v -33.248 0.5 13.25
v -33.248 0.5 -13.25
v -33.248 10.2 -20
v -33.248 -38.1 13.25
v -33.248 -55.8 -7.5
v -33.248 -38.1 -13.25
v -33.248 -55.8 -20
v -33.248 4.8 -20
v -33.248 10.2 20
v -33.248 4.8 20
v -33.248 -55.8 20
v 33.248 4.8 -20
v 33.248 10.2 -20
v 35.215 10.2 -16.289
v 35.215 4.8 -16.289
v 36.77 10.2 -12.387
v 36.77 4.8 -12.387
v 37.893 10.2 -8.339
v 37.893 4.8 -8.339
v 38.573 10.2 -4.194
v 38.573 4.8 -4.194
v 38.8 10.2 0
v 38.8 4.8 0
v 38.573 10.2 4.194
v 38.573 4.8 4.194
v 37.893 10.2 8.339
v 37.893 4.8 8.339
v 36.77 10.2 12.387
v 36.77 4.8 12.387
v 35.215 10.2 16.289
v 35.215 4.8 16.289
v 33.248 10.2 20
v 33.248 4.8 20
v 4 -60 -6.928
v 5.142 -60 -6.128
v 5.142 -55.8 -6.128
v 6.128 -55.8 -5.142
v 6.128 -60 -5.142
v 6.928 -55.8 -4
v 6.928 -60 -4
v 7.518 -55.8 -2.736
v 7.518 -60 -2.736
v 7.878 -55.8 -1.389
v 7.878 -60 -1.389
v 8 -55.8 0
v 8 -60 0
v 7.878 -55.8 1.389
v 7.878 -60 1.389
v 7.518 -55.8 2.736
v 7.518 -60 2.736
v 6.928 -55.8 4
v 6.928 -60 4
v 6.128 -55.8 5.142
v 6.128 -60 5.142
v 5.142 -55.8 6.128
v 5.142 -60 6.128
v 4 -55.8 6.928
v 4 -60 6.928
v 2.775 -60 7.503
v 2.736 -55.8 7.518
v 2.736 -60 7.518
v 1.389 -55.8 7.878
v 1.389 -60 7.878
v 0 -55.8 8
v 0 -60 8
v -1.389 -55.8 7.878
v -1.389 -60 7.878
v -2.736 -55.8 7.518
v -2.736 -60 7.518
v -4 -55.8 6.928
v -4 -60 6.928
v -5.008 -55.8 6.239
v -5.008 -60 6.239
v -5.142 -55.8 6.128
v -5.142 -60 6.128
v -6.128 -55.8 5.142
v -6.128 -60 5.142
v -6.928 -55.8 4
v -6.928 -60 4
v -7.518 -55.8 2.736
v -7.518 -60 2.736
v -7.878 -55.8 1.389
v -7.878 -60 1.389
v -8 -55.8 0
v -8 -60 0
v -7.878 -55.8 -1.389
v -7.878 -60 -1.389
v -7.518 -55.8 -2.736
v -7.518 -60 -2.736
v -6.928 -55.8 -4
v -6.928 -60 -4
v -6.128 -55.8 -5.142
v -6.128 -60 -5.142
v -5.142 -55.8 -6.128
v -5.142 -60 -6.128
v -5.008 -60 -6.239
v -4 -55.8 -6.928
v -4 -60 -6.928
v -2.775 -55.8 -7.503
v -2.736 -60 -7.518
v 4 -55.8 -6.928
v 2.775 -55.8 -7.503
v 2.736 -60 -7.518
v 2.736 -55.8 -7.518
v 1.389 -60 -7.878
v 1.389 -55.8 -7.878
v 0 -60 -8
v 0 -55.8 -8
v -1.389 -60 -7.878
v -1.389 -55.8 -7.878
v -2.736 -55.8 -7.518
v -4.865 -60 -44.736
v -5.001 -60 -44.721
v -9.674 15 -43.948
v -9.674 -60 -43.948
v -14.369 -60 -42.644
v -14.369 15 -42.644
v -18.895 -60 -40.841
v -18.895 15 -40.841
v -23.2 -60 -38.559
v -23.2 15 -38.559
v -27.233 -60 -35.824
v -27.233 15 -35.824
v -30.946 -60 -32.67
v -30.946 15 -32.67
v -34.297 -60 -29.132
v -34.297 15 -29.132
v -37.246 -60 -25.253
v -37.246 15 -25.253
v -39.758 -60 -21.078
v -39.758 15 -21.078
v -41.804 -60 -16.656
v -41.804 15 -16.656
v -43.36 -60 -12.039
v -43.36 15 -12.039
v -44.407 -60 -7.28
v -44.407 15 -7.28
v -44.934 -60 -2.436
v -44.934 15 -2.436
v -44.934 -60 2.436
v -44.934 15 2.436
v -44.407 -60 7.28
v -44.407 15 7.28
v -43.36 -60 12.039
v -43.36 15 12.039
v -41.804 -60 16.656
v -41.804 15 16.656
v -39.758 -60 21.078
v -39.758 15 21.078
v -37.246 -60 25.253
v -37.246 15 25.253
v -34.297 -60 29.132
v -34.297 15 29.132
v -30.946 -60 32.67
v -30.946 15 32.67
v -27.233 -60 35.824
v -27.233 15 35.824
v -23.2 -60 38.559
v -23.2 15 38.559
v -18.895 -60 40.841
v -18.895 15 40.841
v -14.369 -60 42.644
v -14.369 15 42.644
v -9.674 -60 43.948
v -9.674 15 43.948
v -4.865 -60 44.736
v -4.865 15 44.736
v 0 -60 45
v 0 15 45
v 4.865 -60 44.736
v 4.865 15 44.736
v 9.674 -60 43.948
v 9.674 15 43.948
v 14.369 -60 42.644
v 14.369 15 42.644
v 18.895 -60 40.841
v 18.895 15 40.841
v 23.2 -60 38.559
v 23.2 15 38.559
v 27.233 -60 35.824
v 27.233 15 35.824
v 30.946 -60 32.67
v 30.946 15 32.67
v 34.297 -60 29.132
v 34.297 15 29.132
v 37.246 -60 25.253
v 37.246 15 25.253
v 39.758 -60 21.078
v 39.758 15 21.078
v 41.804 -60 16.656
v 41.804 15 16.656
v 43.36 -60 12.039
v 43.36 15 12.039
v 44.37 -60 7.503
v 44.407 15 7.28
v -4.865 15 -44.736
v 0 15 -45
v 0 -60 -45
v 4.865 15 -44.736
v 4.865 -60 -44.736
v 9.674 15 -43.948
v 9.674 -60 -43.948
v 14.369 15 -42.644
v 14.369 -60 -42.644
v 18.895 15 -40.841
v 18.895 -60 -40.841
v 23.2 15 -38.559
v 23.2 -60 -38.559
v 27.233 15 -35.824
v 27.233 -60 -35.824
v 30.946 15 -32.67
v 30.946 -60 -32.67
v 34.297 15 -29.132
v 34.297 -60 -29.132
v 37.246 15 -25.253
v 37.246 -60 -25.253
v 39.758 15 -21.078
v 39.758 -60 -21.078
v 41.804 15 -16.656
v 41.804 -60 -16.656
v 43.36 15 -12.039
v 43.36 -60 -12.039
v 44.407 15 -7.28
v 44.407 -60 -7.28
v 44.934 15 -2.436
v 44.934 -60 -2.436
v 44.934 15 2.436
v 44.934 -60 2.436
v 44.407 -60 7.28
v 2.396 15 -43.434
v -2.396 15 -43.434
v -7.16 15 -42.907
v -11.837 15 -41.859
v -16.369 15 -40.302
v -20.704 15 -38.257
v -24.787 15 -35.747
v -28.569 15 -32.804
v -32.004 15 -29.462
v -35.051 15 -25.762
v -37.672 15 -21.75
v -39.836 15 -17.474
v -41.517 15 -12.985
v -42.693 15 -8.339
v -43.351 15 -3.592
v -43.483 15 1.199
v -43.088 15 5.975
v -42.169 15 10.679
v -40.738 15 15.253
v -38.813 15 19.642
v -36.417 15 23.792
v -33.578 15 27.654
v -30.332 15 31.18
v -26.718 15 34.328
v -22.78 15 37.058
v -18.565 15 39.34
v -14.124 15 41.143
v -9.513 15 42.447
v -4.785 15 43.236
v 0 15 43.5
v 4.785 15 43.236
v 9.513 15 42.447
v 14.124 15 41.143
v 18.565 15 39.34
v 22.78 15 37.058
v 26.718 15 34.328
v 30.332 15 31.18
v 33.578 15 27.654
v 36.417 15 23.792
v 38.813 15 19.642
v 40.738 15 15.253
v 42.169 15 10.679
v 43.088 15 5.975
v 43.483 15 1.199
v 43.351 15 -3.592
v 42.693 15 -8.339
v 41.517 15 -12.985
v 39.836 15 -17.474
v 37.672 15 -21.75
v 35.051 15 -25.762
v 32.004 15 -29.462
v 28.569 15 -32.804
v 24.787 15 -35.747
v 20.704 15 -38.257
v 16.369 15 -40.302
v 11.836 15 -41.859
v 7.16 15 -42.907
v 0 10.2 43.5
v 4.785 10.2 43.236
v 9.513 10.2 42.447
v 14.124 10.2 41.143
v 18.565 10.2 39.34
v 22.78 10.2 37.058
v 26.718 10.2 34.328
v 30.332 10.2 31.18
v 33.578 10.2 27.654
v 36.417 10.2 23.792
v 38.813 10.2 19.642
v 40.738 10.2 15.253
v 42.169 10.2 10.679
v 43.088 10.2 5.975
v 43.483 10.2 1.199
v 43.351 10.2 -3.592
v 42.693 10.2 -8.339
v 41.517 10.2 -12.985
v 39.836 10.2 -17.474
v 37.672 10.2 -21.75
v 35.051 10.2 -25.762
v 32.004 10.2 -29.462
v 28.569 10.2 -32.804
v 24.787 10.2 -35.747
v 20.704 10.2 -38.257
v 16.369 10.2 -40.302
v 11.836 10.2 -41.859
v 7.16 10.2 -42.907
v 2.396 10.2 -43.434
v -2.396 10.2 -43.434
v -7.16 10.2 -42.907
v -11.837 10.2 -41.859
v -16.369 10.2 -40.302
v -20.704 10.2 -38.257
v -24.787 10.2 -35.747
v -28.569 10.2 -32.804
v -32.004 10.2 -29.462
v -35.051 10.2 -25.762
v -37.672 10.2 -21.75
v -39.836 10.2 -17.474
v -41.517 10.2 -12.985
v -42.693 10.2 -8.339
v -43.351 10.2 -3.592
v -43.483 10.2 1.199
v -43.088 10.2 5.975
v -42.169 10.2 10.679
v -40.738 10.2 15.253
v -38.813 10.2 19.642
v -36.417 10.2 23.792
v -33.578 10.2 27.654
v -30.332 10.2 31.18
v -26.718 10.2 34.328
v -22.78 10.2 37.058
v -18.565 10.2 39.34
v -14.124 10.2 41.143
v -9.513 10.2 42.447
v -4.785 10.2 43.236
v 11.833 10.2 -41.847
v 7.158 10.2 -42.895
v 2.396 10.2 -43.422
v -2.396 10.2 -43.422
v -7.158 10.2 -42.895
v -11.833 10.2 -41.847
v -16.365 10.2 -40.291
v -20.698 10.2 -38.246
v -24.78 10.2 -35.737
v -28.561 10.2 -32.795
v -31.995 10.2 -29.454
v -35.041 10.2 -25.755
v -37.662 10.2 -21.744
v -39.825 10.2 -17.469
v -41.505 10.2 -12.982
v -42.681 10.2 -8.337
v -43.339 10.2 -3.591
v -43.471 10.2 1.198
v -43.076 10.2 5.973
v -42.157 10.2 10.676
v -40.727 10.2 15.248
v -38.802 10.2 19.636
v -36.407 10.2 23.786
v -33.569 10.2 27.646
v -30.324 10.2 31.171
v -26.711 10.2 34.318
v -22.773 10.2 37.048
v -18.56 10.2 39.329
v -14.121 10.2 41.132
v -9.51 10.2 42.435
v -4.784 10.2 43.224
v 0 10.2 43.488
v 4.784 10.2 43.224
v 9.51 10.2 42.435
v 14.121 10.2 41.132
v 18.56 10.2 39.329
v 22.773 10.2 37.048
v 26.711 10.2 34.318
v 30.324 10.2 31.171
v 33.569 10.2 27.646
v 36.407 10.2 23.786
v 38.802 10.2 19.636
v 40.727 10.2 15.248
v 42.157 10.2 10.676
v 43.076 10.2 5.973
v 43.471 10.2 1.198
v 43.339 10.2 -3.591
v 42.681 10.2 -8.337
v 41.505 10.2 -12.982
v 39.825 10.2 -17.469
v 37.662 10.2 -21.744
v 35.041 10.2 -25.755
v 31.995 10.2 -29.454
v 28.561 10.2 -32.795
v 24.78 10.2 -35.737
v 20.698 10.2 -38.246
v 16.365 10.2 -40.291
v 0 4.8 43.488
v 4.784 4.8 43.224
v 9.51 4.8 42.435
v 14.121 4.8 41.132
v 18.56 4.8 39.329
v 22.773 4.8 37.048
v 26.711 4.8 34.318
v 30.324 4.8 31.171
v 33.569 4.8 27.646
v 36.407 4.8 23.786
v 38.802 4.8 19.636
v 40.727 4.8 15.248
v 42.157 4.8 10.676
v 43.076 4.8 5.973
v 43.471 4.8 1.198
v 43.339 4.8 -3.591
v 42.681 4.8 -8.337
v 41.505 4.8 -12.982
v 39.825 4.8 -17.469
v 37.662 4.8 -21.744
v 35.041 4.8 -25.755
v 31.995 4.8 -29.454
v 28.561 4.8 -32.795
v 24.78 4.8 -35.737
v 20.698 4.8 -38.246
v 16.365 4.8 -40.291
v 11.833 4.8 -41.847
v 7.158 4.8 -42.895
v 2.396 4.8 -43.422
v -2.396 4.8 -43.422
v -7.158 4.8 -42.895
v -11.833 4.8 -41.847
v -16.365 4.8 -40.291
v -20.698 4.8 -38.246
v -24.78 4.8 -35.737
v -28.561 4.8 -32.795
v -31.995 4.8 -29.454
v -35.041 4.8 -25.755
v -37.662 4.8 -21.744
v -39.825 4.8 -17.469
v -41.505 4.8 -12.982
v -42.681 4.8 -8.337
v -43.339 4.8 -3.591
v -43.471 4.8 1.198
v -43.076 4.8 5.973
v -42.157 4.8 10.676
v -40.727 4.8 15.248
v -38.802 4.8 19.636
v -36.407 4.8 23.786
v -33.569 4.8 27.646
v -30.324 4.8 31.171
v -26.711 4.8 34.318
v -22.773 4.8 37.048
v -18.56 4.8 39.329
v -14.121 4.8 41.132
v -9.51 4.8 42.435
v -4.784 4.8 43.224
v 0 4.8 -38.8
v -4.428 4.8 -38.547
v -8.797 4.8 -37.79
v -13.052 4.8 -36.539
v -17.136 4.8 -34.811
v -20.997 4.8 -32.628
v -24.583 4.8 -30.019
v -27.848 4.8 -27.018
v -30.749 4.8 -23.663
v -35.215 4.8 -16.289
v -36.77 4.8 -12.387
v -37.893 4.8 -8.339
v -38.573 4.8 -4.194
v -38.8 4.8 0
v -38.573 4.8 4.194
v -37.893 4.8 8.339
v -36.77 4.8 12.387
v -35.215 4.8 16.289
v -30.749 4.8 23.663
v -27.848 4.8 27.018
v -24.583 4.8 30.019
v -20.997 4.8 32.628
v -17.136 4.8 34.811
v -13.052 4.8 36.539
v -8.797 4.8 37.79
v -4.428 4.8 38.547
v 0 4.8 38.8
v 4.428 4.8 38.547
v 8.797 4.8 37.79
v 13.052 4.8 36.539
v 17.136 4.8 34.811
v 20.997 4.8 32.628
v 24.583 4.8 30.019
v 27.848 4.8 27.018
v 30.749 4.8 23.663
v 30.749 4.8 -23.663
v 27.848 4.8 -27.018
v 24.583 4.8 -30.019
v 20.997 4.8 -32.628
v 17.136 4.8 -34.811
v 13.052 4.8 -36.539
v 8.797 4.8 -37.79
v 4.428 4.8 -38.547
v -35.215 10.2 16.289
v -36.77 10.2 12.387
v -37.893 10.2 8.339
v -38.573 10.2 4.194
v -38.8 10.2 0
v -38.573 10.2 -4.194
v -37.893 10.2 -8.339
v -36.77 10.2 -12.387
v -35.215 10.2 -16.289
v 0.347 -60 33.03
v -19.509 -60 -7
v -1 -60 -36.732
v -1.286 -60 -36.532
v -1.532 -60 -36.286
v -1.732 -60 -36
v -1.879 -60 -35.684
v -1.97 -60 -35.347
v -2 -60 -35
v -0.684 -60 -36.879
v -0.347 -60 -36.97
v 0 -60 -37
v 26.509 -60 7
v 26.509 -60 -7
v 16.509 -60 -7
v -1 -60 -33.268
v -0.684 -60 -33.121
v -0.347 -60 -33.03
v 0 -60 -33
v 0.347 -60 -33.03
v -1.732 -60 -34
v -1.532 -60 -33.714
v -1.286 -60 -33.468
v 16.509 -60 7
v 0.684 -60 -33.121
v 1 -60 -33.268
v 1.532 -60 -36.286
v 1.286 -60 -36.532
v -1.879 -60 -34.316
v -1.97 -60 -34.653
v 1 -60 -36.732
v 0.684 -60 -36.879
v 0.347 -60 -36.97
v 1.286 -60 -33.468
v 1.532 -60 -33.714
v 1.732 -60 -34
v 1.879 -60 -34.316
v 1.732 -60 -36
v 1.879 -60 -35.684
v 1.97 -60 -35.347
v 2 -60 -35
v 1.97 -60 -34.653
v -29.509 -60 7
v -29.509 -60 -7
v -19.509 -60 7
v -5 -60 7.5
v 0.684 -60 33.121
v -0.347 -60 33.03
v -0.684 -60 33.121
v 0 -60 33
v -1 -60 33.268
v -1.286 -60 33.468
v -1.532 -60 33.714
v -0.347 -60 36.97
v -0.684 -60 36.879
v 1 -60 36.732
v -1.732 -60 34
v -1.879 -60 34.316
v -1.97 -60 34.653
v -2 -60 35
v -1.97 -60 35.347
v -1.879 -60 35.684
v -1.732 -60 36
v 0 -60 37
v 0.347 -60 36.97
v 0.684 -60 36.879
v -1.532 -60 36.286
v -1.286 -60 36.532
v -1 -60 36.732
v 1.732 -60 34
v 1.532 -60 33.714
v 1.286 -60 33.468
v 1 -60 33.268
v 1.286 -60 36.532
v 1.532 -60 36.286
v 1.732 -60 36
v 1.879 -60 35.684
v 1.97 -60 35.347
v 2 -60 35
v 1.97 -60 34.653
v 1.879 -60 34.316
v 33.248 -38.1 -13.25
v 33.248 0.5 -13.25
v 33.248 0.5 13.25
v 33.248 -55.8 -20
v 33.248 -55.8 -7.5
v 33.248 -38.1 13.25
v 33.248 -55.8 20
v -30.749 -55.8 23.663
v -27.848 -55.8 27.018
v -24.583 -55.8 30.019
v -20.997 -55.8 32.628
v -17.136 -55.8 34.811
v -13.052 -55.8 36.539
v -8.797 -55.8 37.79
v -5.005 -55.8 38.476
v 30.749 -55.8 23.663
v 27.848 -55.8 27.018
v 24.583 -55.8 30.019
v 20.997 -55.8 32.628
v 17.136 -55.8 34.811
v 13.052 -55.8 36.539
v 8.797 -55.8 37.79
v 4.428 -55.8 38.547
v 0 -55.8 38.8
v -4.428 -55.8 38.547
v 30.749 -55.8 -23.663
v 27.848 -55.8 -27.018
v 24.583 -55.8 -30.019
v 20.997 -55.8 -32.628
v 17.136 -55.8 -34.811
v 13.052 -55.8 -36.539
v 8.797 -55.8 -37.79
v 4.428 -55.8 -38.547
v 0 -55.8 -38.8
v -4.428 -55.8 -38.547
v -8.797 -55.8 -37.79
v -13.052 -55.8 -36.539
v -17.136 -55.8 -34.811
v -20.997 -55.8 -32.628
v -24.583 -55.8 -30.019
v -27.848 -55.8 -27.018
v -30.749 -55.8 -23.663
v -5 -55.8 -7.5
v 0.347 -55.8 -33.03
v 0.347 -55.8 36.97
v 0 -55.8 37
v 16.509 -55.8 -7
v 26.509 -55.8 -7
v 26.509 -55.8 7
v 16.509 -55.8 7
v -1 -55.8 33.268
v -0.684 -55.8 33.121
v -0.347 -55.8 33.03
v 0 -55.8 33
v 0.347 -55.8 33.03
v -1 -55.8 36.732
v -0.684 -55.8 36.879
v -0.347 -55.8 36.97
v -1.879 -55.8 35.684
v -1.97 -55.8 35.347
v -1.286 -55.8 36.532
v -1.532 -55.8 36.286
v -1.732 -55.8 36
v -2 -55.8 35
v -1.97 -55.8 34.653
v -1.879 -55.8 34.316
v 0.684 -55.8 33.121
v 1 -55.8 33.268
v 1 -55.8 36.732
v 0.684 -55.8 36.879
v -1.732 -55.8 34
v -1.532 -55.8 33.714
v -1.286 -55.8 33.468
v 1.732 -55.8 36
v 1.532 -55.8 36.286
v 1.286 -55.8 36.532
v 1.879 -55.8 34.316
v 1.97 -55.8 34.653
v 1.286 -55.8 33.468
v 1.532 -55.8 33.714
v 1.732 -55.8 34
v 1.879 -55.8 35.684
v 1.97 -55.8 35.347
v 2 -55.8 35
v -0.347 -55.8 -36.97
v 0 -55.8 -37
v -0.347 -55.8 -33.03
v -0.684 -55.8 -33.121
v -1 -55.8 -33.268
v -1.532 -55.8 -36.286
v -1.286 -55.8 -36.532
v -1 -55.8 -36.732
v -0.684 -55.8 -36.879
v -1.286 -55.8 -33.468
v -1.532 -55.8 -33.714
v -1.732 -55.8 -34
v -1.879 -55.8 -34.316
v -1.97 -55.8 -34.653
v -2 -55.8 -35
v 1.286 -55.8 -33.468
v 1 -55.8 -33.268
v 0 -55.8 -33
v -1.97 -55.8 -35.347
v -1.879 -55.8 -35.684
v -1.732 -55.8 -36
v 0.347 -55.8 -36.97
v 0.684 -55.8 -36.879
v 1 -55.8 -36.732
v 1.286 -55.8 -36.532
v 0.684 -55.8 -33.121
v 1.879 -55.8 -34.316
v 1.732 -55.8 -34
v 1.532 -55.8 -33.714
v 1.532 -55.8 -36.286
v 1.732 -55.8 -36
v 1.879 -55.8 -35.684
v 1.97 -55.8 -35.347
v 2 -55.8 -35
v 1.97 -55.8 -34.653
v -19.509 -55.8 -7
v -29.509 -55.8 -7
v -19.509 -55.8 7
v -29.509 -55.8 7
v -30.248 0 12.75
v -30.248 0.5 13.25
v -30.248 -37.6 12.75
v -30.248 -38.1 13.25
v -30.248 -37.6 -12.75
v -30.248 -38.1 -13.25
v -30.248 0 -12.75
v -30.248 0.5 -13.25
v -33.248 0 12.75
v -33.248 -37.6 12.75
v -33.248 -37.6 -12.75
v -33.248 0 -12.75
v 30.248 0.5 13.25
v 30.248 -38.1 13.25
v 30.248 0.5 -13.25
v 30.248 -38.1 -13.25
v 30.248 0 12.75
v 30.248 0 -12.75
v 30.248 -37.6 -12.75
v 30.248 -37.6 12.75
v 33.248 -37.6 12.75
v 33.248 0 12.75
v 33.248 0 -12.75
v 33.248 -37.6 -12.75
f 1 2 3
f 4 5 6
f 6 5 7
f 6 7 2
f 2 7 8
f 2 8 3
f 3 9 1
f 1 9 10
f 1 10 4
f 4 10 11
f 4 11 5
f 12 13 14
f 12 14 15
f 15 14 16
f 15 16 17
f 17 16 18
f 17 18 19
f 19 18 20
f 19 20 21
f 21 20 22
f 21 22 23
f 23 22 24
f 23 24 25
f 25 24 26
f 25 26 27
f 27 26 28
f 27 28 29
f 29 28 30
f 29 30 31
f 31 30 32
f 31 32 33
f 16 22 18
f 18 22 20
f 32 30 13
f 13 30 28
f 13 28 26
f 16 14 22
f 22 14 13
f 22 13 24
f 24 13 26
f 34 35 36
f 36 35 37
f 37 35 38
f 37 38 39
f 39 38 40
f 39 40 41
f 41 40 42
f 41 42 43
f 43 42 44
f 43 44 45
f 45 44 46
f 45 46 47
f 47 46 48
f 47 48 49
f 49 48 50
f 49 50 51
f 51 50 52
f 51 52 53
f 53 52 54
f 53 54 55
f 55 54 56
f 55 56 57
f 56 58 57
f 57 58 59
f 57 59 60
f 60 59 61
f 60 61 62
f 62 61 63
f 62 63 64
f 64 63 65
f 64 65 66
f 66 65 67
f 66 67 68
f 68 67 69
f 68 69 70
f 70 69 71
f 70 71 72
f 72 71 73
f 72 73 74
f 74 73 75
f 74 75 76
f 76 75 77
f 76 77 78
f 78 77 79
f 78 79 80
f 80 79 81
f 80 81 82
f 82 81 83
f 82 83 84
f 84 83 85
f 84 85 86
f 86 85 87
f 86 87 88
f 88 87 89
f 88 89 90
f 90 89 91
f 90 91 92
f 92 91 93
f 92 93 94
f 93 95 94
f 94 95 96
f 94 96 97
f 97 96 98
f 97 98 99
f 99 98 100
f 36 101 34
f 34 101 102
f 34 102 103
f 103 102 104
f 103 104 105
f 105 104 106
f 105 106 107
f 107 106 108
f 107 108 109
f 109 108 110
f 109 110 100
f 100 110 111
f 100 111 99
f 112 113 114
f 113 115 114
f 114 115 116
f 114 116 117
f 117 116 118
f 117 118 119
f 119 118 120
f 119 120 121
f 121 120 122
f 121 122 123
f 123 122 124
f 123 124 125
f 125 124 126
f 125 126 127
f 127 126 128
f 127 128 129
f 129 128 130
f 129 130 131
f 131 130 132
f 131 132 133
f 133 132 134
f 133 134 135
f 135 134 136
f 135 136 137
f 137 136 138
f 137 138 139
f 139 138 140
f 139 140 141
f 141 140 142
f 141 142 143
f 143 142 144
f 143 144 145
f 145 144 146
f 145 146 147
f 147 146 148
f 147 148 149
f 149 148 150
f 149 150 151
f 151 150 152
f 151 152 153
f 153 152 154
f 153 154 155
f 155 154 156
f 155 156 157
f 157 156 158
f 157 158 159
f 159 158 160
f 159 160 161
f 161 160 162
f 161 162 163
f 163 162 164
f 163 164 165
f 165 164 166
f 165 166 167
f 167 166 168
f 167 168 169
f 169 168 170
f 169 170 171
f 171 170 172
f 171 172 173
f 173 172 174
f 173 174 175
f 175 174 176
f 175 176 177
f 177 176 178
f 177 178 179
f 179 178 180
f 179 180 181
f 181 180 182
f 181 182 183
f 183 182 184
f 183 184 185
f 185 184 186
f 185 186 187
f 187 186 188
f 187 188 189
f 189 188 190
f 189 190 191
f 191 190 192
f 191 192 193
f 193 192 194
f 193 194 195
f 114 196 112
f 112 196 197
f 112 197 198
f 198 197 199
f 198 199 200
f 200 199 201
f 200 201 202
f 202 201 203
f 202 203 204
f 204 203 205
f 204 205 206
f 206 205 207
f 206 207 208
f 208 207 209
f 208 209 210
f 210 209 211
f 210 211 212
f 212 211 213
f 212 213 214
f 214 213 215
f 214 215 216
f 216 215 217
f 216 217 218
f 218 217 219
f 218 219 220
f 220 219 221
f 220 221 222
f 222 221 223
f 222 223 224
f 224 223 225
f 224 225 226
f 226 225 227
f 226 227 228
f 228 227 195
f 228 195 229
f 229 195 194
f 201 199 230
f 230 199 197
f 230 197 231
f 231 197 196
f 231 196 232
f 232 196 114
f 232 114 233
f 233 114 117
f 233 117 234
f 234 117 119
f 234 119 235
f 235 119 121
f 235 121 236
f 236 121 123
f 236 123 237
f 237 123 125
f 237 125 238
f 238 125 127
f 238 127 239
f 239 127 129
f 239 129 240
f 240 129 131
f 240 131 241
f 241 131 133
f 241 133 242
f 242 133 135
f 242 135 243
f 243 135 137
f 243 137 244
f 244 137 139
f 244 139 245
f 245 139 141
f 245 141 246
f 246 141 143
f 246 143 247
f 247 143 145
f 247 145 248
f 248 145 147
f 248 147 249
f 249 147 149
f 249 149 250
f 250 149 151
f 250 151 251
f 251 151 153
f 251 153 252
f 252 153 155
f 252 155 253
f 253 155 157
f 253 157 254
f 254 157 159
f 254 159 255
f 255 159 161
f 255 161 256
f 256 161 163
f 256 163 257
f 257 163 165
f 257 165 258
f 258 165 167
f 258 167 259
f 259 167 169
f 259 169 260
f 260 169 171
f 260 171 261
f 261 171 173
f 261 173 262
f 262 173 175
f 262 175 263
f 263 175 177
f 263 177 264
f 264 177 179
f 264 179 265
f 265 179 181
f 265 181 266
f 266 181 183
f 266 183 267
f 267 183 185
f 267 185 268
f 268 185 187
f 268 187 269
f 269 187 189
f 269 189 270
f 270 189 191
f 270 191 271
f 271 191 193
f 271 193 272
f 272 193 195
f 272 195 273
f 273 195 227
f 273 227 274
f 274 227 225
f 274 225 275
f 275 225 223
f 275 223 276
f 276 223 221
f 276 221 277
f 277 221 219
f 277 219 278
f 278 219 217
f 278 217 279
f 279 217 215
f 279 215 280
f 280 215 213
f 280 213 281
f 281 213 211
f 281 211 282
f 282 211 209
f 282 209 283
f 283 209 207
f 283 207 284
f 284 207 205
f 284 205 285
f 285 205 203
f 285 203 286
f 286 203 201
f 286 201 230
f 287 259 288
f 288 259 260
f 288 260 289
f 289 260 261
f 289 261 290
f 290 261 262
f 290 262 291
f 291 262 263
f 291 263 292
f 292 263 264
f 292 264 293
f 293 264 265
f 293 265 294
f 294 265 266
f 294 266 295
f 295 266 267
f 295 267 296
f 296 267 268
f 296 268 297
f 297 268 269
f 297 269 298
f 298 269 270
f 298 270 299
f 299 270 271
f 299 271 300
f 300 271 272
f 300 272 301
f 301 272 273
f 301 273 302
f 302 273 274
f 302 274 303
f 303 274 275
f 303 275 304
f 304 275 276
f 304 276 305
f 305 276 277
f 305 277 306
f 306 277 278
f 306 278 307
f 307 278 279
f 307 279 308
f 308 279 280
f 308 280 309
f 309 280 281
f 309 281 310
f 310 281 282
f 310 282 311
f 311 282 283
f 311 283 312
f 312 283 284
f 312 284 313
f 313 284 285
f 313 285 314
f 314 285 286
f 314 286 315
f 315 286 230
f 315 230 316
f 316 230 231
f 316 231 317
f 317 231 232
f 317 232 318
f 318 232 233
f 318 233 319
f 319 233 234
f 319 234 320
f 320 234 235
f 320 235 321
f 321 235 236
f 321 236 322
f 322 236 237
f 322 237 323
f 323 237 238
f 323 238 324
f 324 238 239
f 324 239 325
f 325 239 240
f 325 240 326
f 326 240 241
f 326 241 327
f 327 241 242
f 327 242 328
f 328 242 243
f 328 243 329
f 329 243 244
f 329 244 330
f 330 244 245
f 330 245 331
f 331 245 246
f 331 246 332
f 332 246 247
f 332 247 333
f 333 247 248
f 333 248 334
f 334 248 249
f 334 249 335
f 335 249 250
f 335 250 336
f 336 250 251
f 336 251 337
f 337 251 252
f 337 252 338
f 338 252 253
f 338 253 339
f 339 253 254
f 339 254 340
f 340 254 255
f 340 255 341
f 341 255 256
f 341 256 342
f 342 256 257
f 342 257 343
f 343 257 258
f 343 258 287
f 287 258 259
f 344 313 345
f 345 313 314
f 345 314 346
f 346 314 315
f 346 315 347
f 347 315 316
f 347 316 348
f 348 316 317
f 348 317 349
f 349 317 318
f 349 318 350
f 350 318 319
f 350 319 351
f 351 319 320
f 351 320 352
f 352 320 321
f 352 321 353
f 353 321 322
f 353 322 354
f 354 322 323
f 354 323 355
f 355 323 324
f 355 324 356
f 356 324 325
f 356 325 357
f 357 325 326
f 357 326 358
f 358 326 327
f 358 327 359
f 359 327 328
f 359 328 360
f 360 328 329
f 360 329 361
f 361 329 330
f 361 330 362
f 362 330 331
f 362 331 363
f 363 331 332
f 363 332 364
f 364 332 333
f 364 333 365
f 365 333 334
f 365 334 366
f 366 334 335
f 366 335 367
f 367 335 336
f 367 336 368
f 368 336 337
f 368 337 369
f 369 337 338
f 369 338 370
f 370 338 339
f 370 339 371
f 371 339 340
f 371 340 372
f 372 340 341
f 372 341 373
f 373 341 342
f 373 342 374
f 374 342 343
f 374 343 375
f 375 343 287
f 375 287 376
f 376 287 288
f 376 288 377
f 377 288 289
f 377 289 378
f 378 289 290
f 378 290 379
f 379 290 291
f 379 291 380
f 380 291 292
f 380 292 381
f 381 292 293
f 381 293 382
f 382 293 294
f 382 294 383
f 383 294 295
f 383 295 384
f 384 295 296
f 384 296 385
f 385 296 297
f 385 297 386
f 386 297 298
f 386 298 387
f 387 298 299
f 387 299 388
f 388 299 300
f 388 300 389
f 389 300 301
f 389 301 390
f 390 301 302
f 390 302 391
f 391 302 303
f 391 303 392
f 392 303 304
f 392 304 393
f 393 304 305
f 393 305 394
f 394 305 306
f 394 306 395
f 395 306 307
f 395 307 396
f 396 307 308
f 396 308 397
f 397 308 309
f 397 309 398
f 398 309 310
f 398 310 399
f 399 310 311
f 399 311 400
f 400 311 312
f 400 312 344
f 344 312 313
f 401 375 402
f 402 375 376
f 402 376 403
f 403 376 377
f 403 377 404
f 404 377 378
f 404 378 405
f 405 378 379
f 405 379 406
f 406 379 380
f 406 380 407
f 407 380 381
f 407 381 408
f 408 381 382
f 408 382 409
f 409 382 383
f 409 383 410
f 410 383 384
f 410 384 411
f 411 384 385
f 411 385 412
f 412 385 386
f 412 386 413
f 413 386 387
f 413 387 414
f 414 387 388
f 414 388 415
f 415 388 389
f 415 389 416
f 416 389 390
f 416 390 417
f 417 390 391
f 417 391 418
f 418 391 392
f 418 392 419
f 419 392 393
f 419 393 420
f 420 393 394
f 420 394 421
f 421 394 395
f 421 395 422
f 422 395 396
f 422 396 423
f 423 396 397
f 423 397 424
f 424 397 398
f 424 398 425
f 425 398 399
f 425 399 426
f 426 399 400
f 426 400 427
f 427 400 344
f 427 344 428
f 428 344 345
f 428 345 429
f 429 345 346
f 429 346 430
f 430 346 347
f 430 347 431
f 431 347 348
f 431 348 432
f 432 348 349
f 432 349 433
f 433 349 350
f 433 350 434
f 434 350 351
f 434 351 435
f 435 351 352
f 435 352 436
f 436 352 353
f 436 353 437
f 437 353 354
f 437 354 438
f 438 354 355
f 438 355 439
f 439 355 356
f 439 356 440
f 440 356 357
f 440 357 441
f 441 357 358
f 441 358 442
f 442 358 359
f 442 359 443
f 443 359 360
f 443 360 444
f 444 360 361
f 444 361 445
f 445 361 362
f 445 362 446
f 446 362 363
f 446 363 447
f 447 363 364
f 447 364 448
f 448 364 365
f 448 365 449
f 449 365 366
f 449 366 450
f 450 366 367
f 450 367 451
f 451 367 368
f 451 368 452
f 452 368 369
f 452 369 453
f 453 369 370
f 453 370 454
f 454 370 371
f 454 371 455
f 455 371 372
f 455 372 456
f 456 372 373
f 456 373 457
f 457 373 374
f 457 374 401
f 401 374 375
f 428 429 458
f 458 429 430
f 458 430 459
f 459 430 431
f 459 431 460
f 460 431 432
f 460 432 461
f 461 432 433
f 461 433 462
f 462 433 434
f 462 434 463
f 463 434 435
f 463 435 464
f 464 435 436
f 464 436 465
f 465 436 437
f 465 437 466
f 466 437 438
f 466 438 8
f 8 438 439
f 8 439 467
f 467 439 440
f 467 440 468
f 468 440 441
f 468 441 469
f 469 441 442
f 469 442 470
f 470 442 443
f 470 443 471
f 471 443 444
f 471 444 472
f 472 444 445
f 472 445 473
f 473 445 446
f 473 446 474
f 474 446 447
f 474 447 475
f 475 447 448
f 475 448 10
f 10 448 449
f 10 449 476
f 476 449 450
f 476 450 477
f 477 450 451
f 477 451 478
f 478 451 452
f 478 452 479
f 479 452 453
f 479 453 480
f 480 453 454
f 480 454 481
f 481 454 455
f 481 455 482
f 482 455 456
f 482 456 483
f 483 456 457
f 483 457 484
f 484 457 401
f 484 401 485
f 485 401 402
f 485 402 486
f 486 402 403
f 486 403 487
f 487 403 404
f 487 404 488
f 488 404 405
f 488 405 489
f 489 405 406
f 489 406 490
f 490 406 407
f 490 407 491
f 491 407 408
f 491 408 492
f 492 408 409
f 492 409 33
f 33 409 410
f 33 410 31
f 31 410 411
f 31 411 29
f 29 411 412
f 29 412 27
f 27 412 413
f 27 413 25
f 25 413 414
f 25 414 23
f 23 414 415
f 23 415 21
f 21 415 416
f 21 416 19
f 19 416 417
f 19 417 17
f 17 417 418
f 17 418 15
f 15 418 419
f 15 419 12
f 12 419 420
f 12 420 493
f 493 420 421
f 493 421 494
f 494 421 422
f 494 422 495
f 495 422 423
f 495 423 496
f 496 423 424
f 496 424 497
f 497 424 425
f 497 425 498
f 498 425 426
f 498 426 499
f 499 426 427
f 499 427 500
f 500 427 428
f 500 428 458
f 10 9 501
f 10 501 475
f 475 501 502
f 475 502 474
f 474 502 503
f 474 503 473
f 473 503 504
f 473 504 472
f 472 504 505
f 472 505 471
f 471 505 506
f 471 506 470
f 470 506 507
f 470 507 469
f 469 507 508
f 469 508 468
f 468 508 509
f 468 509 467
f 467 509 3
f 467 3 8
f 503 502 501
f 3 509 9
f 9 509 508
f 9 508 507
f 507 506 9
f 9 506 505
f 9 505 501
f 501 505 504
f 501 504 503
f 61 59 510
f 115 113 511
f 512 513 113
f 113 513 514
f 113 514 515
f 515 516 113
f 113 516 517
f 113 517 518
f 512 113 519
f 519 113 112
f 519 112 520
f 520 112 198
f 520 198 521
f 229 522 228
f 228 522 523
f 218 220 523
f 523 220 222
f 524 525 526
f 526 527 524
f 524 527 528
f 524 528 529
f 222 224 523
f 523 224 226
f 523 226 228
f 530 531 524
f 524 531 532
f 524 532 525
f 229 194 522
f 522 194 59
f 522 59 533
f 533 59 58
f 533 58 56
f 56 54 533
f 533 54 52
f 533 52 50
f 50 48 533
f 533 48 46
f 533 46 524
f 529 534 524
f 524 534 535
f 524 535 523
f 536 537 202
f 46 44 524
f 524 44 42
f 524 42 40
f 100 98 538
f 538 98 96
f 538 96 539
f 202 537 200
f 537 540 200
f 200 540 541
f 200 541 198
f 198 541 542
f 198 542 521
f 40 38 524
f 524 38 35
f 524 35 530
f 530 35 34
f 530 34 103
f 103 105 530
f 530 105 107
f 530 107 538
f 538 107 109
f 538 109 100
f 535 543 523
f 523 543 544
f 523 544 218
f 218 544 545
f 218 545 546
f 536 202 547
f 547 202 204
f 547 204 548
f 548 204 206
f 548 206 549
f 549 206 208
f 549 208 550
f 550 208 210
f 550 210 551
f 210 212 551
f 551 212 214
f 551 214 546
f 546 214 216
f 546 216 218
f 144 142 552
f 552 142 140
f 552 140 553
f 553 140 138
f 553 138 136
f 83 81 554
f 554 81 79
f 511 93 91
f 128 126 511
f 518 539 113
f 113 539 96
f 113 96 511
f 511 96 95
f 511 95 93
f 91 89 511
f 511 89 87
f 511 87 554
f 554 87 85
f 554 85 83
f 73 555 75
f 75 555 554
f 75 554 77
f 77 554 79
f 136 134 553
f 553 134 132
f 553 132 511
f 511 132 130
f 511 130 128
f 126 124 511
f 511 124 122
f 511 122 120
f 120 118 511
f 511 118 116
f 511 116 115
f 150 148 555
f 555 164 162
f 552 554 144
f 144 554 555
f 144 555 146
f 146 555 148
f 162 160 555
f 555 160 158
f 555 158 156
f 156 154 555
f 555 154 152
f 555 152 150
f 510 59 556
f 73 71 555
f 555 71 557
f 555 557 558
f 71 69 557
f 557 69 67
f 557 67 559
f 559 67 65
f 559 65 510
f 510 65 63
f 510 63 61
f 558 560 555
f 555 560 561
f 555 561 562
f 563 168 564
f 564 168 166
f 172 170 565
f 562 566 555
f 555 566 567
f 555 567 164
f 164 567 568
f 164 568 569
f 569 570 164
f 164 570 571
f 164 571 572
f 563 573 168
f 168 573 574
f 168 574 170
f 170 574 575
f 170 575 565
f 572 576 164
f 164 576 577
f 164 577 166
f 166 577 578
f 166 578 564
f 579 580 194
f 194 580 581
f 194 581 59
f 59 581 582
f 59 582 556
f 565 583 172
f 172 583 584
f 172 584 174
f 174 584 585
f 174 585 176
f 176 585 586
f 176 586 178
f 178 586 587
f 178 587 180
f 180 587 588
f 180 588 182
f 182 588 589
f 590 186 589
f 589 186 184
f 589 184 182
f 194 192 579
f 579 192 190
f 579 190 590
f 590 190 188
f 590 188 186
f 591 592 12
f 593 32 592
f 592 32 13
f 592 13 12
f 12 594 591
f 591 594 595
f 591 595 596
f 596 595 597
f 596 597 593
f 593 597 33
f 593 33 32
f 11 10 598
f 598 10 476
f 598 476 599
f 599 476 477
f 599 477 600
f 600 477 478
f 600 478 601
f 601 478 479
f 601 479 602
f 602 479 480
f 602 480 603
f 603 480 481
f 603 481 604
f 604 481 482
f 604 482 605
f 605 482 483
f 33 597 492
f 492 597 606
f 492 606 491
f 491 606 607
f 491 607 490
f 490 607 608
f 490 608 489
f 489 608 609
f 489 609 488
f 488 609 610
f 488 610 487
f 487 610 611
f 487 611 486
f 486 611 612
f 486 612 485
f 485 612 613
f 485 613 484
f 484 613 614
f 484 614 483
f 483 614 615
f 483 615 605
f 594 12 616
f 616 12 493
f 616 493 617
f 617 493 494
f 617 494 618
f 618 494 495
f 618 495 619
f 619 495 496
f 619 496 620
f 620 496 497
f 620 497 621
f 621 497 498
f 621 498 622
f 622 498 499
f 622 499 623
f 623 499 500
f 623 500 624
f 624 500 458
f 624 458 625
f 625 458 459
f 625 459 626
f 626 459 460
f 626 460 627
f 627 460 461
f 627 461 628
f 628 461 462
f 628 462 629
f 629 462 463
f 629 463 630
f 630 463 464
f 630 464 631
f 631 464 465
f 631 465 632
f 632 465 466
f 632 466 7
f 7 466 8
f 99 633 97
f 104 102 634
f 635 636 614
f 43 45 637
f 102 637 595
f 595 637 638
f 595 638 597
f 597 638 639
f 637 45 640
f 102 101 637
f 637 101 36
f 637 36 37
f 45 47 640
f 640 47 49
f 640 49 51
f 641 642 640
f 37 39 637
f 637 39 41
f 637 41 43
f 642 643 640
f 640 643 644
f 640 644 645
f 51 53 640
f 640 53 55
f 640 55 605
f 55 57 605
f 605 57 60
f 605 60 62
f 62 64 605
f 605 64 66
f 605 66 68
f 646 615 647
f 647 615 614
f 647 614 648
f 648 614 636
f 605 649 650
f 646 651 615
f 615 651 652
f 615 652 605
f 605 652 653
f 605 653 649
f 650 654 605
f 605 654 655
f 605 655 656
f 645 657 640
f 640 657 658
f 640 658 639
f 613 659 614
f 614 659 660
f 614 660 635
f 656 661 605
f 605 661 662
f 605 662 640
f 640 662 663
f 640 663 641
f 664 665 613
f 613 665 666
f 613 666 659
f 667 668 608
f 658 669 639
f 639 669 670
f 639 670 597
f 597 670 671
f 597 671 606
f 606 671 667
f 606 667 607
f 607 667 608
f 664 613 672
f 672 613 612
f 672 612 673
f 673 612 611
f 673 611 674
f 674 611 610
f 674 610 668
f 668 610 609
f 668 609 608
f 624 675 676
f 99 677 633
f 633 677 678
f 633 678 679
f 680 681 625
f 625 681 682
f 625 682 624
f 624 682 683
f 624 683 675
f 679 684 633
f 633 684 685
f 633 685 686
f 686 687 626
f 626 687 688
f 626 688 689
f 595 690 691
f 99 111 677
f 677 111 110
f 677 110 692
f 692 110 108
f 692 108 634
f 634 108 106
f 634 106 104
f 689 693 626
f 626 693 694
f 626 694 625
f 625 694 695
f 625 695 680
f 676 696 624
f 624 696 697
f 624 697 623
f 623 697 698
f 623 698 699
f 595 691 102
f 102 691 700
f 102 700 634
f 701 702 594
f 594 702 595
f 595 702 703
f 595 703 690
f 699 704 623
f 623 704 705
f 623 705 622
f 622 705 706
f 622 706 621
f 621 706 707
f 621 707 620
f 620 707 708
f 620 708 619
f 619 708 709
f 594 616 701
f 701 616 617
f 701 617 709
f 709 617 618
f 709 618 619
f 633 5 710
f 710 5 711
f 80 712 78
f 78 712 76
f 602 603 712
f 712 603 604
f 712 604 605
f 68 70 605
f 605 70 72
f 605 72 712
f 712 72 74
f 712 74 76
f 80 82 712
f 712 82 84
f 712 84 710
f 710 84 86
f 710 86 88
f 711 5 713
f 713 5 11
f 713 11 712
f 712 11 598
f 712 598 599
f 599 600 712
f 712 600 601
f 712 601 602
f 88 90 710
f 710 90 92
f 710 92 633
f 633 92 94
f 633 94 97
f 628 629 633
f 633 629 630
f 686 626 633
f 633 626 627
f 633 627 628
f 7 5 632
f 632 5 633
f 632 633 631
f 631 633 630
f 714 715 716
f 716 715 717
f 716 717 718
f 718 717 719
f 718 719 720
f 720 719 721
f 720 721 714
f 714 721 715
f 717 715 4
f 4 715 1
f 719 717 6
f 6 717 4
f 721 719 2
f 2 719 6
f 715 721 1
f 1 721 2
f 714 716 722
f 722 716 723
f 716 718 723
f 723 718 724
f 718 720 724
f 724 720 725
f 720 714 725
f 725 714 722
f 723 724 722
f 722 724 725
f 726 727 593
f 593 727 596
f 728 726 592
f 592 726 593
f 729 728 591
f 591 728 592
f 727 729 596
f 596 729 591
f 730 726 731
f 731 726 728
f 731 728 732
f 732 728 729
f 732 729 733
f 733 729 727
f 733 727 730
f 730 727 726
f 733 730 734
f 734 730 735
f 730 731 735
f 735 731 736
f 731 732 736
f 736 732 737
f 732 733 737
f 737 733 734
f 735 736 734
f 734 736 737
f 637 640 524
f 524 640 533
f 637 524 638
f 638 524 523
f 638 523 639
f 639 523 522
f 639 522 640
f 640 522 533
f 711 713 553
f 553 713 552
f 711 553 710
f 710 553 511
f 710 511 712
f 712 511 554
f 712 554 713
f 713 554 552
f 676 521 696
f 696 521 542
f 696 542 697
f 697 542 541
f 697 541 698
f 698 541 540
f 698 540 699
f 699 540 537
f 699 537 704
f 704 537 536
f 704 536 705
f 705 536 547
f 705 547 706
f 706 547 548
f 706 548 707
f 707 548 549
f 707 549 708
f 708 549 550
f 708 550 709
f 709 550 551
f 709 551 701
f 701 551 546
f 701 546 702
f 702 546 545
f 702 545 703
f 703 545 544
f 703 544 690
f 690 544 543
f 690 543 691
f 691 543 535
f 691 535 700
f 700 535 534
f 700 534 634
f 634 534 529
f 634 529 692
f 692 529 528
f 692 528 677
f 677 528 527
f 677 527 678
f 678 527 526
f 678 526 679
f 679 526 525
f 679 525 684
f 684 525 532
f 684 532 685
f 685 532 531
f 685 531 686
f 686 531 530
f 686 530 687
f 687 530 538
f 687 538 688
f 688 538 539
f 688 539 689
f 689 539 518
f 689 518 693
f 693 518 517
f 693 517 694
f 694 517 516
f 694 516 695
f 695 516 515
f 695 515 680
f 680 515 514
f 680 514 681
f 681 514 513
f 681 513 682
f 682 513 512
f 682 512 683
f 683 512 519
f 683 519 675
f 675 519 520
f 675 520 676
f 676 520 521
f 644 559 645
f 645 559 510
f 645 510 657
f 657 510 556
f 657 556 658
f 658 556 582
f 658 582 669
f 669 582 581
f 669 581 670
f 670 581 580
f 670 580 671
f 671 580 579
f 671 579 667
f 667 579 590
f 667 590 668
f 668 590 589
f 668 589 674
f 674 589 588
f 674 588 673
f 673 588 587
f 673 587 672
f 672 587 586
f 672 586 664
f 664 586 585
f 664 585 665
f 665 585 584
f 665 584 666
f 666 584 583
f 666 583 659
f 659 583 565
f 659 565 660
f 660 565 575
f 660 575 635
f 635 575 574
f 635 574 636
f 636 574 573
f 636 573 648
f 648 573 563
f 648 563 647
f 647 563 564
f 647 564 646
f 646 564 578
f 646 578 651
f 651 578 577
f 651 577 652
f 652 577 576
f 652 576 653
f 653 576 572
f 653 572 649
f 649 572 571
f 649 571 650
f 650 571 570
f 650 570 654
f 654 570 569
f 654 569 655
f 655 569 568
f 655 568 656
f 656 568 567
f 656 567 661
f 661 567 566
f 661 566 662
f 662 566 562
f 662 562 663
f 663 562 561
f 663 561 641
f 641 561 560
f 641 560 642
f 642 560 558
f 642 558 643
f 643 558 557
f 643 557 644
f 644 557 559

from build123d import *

# Parameters (mm, degrees)
SKETCH1_R               = 45
BOSS_EXTRUDE1_DEPTH     = 15
SKETCH2_R               = 43.5
CUT_EXTRUDE1_DEPTH      = 4.8
SKETCH3_R               = 43.487927738
SKETCH3_R_2             = 38.8
CUT_EXTRUDE2_DEPTH      = 5.4
BOSS_EXTRUDE2_START     = 60
SKETCH4_R               = 45
BOSS_EXTRUDE2_DEPTH     = 60
SKETCH6_R               = 8
CUT_EXTRUDE4_DEPTH      = 71
CUT_EXTRUDE6_DEPTH      = 66
SKETCH11_W              = 26.5
SKETCH11_H              = 38.6
SKETCH11_W_2            = 25.5
SKETCH11_H_2            = 37.6
BOSS_EXTRUDE3_DEPTH     = 3
SKETCH12_W              = 10
SKETCH12_H              = 14
CUT_EXTRUDE_THIN1_DEPTH = 10
SKETCH13_R              = 2
CUT_EXTRUDE7_DEPTH      = 10


with BuildPart() as part:
    # Sketch1 → Boss-Extrude1 (new body)
    with BuildSketch(Plane(origin=(0, 0, 0), x_dir=(1, 0, 0), z_dir=(0, 1, 0))):
        with Locations(Location((0, 0, 0), (0, 0, 270))):
            Circle(SKETCH1_R)
    extrude(amount=BOSS_EXTRUDE1_DEPTH)

    # Sketch2 → Cut-Extrude1 (cut)
    with BuildSketch(Plane(origin=(0, 15, 0), x_dir=(1, 0, 0), z_dir=(0, 1, 0))):
        with Locations(Location((0, 0, 0), (0, 0, 270))):
            Circle(SKETCH2_R)
    extrude(amount=-CUT_EXTRUDE1_DEPTH, mode=Mode.SUBTRACT)

    # Sketch3 → Cut-Extrude2 (cut)
    with BuildSketch(Plane(origin=(0, 10.2, 0), x_dir=(1, 0, 0), z_dir=(0, 1, 0))):
        with Locations(Location((0, 0, 0), (0, 0, 270))):
            Circle(SKETCH3_R)
        with Locations(Location((0, 0, 0), (0, 0, 270))):
            Circle(SKETCH3_R_2, mode=Mode.SUBTRACT)
    extrude(amount=-CUT_EXTRUDE2_DEPTH, mode=Mode.SUBTRACT)

    # Sketch4 → Boss-Extrude2 (add)
    with BuildSketch(Plane.XZ.offset(BOSS_EXTRUDE2_START)):
        with Locations(Location((0, 0, 0), (0, 0, 270))):
            Circle(SKETCH4_R)
    extrude(amount=-BOSS_EXTRUDE2_DEPTH)

    # Sketch6 → Cut-Extrude4 (cut)
    with BuildSketch(Plane.XZ.offset(60)):
        with Locations(Location((0, 0, 0), (0, 0, 270))):
            Circle(SKETCH6_R)
    extrude(amount=-CUT_EXTRUDE4_DEPTH, mode=Mode.SUBTRACT)

    # Sketch10 → Cut-Extrude6 (cut)
    with BuildSketch(Plane(origin=(0, 10.2, 0), x_dir=(1, 0, 0), z_dir=(0, 1, 0))):
        with BuildLine():
            Line((-33.248157844, 20), (-33.248157844, -20))
            ThreePointArc((-33.248157844, -20), (0, -38.8), (33.248157844, -20))
            Line((33.248157844, -20), (33.248157844, 20))
            ThreePointArc((33.248157844, 20), (0, 38.8), (-33.248157844, 20))
        make_face()
    extrude(amount=-CUT_EXTRUDE6_DEPTH, mode=Mode.SUBTRACT)

    # Sketch11 → Boss-Extrude3 (add)
    with BuildSketch(Plane(origin=(-33.248157844, 0, 0), x_dir=(0, 0, -1), z_dir=(1, 0, 0))):
        with Locations((0, -18.8)):
            Rectangle(SKETCH11_W, SKETCH11_H)
        with Locations((0, -18.8)):
            Rectangle(SKETCH11_W_2, SKETCH11_H_2, mode=Mode.SUBTRACT)
    boss_extrude3 = extrude(amount=BOSS_EXTRUDE3_DEPTH)

    # Mirror1: Boss-Extrude3 across plane
    add(boss_extrude3.mirror(Plane(origin=(0, 0, 0), x_dir=(0, 0, 1), z_dir=(1, 0, 0))))

    # Sketch12 → Cut-Extrude-Thin1 (cut)
    with BuildSketch(Plane(origin=(0, -55.8, 0), x_dir=(1, 0, 0), z_dir=(0, 1, 0))):
        with Locations((-24.509146191, 0)):
            Rectangle(SKETCH12_W, SKETCH12_H)
        with Locations((21.509146191, 0)):
            Rectangle(SKETCH12_W, SKETCH12_H)
    extrude(amount=-CUT_EXTRUDE_THIN1_DEPTH, mode=Mode.SUBTRACT)

    # Sketch13 → Cut-Extrude7 (cut)
    with BuildSketch(Plane.XZ.offset(60)):
        with Locations(Location((0, 35, 0), (0, 0, 270))):
            Circle(SKETCH13_R)
        with Locations(Location((0, -35, 0), (0, 0, 90))):
            Circle(SKETCH13_R)
    extrude(amount=-CUT_EXTRUDE7_DEPTH, mode=Mode.SUBTRACT)


solid = part.part
